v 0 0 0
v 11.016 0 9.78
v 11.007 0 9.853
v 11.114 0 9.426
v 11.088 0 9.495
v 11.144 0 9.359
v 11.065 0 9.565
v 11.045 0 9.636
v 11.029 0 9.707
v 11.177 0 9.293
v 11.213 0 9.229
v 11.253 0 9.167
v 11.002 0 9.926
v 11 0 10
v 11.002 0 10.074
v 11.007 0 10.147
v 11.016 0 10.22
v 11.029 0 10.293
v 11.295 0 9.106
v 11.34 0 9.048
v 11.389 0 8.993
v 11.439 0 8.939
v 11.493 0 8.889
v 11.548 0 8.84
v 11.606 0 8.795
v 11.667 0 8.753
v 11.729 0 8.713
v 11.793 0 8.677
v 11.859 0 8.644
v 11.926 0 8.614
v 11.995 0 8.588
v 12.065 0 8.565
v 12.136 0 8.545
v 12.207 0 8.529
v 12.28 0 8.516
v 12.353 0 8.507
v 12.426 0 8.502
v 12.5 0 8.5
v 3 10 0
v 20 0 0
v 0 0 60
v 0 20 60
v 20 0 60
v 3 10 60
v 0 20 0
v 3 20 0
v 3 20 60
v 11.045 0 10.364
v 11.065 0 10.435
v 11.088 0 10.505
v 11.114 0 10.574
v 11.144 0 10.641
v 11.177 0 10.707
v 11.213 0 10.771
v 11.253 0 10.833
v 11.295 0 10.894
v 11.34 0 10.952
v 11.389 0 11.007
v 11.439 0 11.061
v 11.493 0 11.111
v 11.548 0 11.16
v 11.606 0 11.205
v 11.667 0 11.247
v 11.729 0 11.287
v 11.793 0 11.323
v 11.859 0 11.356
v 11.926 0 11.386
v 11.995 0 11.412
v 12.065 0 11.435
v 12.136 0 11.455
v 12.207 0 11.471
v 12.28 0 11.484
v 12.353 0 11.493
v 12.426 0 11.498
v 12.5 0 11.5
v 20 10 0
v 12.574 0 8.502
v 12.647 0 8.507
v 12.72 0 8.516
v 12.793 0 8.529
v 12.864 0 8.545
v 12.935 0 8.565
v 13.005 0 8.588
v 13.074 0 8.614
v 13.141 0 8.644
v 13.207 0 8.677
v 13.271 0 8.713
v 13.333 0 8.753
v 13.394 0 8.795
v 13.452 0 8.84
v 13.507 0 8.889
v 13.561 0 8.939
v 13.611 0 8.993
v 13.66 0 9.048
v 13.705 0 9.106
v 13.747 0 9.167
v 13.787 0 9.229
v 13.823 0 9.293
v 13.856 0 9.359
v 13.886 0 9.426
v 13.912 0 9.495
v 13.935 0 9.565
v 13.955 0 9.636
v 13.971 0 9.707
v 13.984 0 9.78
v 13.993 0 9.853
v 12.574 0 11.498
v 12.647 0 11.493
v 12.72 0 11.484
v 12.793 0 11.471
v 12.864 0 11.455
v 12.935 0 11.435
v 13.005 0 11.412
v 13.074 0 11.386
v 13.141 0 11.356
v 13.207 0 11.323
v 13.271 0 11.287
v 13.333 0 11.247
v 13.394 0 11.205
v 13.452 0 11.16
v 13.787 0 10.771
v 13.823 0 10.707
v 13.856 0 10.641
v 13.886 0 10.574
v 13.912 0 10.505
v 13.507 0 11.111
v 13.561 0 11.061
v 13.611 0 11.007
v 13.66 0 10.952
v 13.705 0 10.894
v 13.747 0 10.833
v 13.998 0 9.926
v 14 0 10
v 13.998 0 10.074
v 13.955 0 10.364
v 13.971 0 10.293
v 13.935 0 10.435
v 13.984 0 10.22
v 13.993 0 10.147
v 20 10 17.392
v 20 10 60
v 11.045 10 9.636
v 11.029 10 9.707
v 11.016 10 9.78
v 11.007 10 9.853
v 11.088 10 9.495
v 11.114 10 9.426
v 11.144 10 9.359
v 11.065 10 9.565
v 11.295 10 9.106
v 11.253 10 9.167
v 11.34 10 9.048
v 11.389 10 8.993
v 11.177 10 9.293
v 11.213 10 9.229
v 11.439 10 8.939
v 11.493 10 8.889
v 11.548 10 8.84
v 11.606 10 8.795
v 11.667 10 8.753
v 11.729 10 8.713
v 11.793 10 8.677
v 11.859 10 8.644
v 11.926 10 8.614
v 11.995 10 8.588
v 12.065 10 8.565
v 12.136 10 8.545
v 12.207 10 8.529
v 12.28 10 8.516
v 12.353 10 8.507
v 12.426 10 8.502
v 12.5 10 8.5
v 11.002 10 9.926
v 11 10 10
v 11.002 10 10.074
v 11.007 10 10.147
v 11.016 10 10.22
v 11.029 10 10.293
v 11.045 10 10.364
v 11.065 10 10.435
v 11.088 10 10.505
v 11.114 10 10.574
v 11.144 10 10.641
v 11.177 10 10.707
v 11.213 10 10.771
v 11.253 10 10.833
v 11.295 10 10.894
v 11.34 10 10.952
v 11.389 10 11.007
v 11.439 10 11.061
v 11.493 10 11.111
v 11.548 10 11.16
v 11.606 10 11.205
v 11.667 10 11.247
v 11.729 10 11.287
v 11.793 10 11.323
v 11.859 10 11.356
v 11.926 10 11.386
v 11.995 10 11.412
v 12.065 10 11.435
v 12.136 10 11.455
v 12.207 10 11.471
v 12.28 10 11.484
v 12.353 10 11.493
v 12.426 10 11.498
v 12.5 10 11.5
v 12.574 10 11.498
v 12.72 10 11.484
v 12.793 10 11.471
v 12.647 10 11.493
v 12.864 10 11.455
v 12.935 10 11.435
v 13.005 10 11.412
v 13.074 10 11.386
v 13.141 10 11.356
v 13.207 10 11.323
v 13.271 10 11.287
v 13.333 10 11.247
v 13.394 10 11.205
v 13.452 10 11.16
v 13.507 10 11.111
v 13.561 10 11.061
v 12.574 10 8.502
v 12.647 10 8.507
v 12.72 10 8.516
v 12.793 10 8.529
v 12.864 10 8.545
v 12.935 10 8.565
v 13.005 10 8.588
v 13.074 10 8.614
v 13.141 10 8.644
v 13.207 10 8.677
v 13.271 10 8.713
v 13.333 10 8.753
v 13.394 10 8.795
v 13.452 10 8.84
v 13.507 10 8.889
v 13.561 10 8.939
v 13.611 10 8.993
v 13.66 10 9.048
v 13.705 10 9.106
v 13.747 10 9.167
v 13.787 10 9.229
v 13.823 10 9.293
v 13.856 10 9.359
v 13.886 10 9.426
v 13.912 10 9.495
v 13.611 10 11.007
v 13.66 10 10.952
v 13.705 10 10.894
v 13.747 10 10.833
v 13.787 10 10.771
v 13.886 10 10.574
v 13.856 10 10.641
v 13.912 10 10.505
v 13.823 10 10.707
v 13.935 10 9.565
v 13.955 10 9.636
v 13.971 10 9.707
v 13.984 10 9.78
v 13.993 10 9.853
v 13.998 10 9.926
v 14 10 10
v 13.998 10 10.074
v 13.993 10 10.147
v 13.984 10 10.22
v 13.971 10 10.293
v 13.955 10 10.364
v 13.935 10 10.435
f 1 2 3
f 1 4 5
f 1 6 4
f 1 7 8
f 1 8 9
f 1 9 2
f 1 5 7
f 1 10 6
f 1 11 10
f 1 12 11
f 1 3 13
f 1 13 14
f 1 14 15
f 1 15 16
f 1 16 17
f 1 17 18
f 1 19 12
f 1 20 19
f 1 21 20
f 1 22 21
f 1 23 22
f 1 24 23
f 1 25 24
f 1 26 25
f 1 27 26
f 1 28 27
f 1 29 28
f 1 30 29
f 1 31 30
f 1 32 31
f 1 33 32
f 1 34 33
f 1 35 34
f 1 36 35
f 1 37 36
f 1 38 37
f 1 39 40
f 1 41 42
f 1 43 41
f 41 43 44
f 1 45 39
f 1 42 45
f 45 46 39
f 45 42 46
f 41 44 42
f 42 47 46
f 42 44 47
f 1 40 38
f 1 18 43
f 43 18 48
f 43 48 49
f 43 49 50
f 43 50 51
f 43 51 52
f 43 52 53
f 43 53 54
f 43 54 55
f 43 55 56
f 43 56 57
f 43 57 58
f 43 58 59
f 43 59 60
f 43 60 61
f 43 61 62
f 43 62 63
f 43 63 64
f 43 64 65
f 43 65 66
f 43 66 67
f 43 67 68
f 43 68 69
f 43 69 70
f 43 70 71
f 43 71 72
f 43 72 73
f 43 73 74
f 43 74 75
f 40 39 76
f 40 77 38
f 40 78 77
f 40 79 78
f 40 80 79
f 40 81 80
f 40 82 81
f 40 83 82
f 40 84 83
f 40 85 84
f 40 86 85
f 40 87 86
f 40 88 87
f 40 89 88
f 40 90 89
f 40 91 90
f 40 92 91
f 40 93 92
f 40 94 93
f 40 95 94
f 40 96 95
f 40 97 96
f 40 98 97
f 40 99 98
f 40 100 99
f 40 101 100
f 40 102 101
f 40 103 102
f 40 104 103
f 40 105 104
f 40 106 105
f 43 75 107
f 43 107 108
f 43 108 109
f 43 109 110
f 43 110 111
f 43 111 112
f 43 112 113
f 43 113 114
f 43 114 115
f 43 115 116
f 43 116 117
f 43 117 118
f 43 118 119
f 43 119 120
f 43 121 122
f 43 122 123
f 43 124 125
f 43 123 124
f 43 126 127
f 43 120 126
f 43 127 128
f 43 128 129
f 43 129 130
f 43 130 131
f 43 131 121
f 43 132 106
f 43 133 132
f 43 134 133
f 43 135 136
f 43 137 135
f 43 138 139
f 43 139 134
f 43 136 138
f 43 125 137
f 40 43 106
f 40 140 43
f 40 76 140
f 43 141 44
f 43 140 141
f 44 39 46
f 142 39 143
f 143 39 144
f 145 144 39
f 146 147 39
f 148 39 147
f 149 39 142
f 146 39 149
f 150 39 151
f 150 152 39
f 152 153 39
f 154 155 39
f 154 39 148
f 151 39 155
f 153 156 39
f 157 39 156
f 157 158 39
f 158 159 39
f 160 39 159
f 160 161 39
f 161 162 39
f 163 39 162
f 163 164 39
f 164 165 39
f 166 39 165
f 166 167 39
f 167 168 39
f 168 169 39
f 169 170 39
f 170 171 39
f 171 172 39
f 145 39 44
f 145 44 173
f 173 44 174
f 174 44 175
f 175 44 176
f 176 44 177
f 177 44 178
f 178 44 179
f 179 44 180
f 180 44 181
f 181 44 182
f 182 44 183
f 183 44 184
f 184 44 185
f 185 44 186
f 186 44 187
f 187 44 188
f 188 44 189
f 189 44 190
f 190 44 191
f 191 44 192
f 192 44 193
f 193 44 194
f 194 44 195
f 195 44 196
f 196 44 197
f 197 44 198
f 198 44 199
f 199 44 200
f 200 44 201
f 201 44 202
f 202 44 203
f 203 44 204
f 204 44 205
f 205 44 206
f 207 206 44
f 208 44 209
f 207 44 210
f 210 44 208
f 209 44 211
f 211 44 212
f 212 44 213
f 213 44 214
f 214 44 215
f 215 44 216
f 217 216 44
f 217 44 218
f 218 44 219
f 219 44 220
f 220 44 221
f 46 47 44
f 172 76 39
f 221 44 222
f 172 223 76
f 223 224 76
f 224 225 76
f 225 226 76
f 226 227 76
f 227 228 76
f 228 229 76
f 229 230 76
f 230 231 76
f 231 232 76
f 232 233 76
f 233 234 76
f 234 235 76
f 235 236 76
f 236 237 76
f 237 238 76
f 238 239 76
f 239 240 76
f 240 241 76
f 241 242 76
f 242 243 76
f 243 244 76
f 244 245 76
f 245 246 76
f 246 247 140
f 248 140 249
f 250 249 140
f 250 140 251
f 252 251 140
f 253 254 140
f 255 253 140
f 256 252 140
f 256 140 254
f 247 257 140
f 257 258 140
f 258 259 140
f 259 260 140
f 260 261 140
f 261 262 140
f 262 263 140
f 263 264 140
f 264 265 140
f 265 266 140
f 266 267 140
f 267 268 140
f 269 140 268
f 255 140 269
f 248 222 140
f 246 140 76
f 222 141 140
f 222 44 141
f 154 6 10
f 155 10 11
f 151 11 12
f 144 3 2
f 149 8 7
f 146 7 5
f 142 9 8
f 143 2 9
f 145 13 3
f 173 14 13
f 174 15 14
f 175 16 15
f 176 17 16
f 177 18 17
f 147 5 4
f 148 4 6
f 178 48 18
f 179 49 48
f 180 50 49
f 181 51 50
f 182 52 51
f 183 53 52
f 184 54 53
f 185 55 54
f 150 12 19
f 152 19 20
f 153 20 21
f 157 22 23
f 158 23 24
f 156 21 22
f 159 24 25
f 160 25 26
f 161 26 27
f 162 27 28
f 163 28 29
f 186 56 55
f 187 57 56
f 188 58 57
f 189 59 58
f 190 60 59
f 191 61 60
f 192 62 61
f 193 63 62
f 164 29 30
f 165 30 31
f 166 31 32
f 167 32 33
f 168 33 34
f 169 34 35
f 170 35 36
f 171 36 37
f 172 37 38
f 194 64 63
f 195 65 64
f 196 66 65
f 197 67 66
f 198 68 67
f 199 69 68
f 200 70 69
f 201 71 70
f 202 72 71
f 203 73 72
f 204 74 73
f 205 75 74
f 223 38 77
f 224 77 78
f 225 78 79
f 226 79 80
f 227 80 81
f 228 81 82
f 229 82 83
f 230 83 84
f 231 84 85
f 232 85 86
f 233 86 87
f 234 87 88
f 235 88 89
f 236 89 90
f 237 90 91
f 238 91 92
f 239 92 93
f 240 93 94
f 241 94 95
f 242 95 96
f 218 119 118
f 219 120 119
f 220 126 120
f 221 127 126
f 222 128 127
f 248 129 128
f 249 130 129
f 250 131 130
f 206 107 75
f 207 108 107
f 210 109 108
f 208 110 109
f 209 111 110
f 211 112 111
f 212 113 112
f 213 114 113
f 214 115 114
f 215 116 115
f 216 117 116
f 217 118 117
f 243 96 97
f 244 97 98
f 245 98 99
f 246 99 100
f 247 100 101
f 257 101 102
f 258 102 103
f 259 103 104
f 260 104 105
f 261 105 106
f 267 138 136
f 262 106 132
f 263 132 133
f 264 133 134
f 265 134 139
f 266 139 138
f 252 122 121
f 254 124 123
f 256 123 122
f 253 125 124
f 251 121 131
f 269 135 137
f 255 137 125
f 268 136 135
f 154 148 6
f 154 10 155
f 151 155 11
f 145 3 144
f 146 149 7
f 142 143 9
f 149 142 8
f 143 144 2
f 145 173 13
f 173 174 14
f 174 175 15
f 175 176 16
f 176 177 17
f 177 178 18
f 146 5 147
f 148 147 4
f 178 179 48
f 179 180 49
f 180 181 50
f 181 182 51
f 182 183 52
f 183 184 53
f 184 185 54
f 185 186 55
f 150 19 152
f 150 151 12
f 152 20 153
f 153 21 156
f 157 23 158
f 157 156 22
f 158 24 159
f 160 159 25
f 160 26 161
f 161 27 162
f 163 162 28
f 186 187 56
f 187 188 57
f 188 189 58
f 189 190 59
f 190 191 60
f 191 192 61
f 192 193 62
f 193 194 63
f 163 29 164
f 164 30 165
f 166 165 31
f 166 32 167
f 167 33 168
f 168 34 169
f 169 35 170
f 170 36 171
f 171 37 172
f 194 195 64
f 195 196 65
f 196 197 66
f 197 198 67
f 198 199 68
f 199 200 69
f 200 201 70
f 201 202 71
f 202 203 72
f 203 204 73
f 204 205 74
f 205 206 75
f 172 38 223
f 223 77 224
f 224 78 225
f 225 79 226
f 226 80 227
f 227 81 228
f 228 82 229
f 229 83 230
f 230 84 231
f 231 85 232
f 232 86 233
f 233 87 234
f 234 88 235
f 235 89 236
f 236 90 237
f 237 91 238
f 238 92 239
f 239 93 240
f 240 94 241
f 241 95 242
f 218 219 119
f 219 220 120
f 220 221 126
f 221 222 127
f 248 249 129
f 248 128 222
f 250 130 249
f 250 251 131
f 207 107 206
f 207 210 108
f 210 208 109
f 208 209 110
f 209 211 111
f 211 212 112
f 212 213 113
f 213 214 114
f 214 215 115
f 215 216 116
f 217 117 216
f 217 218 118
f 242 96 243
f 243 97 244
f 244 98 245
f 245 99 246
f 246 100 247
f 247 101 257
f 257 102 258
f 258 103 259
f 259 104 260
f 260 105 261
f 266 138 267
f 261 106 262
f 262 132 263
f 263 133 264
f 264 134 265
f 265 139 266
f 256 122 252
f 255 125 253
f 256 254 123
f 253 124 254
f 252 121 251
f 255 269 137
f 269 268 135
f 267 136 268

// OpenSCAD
gap = 10;
height = 60;
$fn = 128;

difference() {
  cube([20, 20, height]);
  translate([3, 10, -1]) cube([100, 100, 100]);
  //translate([gap,gap,-1]) cube([gap,100,100]);
  translate([3 + 9.5, -gap * 1.5, gap]) rotate([-90, 0, 0]) cylinder(100, d=3);
  // translate([gap*1.5,-gap,gap*2.5]) rotate([-90,0,0]) cylinder(100,d = 4.1);

  //translate([gap*1.5,gap*1.5,gap*1.5]) rotate([-90,0,90]) cylinder(100,d = 4.1);
  // translate([gap*1.5,gap*1.5,gap*2.5]) rotate([-90,0,90]) cylinder(100,d = 4.1);

  //translate([gap*3,gap*3,gap]) cube([100,100,100]);
}
